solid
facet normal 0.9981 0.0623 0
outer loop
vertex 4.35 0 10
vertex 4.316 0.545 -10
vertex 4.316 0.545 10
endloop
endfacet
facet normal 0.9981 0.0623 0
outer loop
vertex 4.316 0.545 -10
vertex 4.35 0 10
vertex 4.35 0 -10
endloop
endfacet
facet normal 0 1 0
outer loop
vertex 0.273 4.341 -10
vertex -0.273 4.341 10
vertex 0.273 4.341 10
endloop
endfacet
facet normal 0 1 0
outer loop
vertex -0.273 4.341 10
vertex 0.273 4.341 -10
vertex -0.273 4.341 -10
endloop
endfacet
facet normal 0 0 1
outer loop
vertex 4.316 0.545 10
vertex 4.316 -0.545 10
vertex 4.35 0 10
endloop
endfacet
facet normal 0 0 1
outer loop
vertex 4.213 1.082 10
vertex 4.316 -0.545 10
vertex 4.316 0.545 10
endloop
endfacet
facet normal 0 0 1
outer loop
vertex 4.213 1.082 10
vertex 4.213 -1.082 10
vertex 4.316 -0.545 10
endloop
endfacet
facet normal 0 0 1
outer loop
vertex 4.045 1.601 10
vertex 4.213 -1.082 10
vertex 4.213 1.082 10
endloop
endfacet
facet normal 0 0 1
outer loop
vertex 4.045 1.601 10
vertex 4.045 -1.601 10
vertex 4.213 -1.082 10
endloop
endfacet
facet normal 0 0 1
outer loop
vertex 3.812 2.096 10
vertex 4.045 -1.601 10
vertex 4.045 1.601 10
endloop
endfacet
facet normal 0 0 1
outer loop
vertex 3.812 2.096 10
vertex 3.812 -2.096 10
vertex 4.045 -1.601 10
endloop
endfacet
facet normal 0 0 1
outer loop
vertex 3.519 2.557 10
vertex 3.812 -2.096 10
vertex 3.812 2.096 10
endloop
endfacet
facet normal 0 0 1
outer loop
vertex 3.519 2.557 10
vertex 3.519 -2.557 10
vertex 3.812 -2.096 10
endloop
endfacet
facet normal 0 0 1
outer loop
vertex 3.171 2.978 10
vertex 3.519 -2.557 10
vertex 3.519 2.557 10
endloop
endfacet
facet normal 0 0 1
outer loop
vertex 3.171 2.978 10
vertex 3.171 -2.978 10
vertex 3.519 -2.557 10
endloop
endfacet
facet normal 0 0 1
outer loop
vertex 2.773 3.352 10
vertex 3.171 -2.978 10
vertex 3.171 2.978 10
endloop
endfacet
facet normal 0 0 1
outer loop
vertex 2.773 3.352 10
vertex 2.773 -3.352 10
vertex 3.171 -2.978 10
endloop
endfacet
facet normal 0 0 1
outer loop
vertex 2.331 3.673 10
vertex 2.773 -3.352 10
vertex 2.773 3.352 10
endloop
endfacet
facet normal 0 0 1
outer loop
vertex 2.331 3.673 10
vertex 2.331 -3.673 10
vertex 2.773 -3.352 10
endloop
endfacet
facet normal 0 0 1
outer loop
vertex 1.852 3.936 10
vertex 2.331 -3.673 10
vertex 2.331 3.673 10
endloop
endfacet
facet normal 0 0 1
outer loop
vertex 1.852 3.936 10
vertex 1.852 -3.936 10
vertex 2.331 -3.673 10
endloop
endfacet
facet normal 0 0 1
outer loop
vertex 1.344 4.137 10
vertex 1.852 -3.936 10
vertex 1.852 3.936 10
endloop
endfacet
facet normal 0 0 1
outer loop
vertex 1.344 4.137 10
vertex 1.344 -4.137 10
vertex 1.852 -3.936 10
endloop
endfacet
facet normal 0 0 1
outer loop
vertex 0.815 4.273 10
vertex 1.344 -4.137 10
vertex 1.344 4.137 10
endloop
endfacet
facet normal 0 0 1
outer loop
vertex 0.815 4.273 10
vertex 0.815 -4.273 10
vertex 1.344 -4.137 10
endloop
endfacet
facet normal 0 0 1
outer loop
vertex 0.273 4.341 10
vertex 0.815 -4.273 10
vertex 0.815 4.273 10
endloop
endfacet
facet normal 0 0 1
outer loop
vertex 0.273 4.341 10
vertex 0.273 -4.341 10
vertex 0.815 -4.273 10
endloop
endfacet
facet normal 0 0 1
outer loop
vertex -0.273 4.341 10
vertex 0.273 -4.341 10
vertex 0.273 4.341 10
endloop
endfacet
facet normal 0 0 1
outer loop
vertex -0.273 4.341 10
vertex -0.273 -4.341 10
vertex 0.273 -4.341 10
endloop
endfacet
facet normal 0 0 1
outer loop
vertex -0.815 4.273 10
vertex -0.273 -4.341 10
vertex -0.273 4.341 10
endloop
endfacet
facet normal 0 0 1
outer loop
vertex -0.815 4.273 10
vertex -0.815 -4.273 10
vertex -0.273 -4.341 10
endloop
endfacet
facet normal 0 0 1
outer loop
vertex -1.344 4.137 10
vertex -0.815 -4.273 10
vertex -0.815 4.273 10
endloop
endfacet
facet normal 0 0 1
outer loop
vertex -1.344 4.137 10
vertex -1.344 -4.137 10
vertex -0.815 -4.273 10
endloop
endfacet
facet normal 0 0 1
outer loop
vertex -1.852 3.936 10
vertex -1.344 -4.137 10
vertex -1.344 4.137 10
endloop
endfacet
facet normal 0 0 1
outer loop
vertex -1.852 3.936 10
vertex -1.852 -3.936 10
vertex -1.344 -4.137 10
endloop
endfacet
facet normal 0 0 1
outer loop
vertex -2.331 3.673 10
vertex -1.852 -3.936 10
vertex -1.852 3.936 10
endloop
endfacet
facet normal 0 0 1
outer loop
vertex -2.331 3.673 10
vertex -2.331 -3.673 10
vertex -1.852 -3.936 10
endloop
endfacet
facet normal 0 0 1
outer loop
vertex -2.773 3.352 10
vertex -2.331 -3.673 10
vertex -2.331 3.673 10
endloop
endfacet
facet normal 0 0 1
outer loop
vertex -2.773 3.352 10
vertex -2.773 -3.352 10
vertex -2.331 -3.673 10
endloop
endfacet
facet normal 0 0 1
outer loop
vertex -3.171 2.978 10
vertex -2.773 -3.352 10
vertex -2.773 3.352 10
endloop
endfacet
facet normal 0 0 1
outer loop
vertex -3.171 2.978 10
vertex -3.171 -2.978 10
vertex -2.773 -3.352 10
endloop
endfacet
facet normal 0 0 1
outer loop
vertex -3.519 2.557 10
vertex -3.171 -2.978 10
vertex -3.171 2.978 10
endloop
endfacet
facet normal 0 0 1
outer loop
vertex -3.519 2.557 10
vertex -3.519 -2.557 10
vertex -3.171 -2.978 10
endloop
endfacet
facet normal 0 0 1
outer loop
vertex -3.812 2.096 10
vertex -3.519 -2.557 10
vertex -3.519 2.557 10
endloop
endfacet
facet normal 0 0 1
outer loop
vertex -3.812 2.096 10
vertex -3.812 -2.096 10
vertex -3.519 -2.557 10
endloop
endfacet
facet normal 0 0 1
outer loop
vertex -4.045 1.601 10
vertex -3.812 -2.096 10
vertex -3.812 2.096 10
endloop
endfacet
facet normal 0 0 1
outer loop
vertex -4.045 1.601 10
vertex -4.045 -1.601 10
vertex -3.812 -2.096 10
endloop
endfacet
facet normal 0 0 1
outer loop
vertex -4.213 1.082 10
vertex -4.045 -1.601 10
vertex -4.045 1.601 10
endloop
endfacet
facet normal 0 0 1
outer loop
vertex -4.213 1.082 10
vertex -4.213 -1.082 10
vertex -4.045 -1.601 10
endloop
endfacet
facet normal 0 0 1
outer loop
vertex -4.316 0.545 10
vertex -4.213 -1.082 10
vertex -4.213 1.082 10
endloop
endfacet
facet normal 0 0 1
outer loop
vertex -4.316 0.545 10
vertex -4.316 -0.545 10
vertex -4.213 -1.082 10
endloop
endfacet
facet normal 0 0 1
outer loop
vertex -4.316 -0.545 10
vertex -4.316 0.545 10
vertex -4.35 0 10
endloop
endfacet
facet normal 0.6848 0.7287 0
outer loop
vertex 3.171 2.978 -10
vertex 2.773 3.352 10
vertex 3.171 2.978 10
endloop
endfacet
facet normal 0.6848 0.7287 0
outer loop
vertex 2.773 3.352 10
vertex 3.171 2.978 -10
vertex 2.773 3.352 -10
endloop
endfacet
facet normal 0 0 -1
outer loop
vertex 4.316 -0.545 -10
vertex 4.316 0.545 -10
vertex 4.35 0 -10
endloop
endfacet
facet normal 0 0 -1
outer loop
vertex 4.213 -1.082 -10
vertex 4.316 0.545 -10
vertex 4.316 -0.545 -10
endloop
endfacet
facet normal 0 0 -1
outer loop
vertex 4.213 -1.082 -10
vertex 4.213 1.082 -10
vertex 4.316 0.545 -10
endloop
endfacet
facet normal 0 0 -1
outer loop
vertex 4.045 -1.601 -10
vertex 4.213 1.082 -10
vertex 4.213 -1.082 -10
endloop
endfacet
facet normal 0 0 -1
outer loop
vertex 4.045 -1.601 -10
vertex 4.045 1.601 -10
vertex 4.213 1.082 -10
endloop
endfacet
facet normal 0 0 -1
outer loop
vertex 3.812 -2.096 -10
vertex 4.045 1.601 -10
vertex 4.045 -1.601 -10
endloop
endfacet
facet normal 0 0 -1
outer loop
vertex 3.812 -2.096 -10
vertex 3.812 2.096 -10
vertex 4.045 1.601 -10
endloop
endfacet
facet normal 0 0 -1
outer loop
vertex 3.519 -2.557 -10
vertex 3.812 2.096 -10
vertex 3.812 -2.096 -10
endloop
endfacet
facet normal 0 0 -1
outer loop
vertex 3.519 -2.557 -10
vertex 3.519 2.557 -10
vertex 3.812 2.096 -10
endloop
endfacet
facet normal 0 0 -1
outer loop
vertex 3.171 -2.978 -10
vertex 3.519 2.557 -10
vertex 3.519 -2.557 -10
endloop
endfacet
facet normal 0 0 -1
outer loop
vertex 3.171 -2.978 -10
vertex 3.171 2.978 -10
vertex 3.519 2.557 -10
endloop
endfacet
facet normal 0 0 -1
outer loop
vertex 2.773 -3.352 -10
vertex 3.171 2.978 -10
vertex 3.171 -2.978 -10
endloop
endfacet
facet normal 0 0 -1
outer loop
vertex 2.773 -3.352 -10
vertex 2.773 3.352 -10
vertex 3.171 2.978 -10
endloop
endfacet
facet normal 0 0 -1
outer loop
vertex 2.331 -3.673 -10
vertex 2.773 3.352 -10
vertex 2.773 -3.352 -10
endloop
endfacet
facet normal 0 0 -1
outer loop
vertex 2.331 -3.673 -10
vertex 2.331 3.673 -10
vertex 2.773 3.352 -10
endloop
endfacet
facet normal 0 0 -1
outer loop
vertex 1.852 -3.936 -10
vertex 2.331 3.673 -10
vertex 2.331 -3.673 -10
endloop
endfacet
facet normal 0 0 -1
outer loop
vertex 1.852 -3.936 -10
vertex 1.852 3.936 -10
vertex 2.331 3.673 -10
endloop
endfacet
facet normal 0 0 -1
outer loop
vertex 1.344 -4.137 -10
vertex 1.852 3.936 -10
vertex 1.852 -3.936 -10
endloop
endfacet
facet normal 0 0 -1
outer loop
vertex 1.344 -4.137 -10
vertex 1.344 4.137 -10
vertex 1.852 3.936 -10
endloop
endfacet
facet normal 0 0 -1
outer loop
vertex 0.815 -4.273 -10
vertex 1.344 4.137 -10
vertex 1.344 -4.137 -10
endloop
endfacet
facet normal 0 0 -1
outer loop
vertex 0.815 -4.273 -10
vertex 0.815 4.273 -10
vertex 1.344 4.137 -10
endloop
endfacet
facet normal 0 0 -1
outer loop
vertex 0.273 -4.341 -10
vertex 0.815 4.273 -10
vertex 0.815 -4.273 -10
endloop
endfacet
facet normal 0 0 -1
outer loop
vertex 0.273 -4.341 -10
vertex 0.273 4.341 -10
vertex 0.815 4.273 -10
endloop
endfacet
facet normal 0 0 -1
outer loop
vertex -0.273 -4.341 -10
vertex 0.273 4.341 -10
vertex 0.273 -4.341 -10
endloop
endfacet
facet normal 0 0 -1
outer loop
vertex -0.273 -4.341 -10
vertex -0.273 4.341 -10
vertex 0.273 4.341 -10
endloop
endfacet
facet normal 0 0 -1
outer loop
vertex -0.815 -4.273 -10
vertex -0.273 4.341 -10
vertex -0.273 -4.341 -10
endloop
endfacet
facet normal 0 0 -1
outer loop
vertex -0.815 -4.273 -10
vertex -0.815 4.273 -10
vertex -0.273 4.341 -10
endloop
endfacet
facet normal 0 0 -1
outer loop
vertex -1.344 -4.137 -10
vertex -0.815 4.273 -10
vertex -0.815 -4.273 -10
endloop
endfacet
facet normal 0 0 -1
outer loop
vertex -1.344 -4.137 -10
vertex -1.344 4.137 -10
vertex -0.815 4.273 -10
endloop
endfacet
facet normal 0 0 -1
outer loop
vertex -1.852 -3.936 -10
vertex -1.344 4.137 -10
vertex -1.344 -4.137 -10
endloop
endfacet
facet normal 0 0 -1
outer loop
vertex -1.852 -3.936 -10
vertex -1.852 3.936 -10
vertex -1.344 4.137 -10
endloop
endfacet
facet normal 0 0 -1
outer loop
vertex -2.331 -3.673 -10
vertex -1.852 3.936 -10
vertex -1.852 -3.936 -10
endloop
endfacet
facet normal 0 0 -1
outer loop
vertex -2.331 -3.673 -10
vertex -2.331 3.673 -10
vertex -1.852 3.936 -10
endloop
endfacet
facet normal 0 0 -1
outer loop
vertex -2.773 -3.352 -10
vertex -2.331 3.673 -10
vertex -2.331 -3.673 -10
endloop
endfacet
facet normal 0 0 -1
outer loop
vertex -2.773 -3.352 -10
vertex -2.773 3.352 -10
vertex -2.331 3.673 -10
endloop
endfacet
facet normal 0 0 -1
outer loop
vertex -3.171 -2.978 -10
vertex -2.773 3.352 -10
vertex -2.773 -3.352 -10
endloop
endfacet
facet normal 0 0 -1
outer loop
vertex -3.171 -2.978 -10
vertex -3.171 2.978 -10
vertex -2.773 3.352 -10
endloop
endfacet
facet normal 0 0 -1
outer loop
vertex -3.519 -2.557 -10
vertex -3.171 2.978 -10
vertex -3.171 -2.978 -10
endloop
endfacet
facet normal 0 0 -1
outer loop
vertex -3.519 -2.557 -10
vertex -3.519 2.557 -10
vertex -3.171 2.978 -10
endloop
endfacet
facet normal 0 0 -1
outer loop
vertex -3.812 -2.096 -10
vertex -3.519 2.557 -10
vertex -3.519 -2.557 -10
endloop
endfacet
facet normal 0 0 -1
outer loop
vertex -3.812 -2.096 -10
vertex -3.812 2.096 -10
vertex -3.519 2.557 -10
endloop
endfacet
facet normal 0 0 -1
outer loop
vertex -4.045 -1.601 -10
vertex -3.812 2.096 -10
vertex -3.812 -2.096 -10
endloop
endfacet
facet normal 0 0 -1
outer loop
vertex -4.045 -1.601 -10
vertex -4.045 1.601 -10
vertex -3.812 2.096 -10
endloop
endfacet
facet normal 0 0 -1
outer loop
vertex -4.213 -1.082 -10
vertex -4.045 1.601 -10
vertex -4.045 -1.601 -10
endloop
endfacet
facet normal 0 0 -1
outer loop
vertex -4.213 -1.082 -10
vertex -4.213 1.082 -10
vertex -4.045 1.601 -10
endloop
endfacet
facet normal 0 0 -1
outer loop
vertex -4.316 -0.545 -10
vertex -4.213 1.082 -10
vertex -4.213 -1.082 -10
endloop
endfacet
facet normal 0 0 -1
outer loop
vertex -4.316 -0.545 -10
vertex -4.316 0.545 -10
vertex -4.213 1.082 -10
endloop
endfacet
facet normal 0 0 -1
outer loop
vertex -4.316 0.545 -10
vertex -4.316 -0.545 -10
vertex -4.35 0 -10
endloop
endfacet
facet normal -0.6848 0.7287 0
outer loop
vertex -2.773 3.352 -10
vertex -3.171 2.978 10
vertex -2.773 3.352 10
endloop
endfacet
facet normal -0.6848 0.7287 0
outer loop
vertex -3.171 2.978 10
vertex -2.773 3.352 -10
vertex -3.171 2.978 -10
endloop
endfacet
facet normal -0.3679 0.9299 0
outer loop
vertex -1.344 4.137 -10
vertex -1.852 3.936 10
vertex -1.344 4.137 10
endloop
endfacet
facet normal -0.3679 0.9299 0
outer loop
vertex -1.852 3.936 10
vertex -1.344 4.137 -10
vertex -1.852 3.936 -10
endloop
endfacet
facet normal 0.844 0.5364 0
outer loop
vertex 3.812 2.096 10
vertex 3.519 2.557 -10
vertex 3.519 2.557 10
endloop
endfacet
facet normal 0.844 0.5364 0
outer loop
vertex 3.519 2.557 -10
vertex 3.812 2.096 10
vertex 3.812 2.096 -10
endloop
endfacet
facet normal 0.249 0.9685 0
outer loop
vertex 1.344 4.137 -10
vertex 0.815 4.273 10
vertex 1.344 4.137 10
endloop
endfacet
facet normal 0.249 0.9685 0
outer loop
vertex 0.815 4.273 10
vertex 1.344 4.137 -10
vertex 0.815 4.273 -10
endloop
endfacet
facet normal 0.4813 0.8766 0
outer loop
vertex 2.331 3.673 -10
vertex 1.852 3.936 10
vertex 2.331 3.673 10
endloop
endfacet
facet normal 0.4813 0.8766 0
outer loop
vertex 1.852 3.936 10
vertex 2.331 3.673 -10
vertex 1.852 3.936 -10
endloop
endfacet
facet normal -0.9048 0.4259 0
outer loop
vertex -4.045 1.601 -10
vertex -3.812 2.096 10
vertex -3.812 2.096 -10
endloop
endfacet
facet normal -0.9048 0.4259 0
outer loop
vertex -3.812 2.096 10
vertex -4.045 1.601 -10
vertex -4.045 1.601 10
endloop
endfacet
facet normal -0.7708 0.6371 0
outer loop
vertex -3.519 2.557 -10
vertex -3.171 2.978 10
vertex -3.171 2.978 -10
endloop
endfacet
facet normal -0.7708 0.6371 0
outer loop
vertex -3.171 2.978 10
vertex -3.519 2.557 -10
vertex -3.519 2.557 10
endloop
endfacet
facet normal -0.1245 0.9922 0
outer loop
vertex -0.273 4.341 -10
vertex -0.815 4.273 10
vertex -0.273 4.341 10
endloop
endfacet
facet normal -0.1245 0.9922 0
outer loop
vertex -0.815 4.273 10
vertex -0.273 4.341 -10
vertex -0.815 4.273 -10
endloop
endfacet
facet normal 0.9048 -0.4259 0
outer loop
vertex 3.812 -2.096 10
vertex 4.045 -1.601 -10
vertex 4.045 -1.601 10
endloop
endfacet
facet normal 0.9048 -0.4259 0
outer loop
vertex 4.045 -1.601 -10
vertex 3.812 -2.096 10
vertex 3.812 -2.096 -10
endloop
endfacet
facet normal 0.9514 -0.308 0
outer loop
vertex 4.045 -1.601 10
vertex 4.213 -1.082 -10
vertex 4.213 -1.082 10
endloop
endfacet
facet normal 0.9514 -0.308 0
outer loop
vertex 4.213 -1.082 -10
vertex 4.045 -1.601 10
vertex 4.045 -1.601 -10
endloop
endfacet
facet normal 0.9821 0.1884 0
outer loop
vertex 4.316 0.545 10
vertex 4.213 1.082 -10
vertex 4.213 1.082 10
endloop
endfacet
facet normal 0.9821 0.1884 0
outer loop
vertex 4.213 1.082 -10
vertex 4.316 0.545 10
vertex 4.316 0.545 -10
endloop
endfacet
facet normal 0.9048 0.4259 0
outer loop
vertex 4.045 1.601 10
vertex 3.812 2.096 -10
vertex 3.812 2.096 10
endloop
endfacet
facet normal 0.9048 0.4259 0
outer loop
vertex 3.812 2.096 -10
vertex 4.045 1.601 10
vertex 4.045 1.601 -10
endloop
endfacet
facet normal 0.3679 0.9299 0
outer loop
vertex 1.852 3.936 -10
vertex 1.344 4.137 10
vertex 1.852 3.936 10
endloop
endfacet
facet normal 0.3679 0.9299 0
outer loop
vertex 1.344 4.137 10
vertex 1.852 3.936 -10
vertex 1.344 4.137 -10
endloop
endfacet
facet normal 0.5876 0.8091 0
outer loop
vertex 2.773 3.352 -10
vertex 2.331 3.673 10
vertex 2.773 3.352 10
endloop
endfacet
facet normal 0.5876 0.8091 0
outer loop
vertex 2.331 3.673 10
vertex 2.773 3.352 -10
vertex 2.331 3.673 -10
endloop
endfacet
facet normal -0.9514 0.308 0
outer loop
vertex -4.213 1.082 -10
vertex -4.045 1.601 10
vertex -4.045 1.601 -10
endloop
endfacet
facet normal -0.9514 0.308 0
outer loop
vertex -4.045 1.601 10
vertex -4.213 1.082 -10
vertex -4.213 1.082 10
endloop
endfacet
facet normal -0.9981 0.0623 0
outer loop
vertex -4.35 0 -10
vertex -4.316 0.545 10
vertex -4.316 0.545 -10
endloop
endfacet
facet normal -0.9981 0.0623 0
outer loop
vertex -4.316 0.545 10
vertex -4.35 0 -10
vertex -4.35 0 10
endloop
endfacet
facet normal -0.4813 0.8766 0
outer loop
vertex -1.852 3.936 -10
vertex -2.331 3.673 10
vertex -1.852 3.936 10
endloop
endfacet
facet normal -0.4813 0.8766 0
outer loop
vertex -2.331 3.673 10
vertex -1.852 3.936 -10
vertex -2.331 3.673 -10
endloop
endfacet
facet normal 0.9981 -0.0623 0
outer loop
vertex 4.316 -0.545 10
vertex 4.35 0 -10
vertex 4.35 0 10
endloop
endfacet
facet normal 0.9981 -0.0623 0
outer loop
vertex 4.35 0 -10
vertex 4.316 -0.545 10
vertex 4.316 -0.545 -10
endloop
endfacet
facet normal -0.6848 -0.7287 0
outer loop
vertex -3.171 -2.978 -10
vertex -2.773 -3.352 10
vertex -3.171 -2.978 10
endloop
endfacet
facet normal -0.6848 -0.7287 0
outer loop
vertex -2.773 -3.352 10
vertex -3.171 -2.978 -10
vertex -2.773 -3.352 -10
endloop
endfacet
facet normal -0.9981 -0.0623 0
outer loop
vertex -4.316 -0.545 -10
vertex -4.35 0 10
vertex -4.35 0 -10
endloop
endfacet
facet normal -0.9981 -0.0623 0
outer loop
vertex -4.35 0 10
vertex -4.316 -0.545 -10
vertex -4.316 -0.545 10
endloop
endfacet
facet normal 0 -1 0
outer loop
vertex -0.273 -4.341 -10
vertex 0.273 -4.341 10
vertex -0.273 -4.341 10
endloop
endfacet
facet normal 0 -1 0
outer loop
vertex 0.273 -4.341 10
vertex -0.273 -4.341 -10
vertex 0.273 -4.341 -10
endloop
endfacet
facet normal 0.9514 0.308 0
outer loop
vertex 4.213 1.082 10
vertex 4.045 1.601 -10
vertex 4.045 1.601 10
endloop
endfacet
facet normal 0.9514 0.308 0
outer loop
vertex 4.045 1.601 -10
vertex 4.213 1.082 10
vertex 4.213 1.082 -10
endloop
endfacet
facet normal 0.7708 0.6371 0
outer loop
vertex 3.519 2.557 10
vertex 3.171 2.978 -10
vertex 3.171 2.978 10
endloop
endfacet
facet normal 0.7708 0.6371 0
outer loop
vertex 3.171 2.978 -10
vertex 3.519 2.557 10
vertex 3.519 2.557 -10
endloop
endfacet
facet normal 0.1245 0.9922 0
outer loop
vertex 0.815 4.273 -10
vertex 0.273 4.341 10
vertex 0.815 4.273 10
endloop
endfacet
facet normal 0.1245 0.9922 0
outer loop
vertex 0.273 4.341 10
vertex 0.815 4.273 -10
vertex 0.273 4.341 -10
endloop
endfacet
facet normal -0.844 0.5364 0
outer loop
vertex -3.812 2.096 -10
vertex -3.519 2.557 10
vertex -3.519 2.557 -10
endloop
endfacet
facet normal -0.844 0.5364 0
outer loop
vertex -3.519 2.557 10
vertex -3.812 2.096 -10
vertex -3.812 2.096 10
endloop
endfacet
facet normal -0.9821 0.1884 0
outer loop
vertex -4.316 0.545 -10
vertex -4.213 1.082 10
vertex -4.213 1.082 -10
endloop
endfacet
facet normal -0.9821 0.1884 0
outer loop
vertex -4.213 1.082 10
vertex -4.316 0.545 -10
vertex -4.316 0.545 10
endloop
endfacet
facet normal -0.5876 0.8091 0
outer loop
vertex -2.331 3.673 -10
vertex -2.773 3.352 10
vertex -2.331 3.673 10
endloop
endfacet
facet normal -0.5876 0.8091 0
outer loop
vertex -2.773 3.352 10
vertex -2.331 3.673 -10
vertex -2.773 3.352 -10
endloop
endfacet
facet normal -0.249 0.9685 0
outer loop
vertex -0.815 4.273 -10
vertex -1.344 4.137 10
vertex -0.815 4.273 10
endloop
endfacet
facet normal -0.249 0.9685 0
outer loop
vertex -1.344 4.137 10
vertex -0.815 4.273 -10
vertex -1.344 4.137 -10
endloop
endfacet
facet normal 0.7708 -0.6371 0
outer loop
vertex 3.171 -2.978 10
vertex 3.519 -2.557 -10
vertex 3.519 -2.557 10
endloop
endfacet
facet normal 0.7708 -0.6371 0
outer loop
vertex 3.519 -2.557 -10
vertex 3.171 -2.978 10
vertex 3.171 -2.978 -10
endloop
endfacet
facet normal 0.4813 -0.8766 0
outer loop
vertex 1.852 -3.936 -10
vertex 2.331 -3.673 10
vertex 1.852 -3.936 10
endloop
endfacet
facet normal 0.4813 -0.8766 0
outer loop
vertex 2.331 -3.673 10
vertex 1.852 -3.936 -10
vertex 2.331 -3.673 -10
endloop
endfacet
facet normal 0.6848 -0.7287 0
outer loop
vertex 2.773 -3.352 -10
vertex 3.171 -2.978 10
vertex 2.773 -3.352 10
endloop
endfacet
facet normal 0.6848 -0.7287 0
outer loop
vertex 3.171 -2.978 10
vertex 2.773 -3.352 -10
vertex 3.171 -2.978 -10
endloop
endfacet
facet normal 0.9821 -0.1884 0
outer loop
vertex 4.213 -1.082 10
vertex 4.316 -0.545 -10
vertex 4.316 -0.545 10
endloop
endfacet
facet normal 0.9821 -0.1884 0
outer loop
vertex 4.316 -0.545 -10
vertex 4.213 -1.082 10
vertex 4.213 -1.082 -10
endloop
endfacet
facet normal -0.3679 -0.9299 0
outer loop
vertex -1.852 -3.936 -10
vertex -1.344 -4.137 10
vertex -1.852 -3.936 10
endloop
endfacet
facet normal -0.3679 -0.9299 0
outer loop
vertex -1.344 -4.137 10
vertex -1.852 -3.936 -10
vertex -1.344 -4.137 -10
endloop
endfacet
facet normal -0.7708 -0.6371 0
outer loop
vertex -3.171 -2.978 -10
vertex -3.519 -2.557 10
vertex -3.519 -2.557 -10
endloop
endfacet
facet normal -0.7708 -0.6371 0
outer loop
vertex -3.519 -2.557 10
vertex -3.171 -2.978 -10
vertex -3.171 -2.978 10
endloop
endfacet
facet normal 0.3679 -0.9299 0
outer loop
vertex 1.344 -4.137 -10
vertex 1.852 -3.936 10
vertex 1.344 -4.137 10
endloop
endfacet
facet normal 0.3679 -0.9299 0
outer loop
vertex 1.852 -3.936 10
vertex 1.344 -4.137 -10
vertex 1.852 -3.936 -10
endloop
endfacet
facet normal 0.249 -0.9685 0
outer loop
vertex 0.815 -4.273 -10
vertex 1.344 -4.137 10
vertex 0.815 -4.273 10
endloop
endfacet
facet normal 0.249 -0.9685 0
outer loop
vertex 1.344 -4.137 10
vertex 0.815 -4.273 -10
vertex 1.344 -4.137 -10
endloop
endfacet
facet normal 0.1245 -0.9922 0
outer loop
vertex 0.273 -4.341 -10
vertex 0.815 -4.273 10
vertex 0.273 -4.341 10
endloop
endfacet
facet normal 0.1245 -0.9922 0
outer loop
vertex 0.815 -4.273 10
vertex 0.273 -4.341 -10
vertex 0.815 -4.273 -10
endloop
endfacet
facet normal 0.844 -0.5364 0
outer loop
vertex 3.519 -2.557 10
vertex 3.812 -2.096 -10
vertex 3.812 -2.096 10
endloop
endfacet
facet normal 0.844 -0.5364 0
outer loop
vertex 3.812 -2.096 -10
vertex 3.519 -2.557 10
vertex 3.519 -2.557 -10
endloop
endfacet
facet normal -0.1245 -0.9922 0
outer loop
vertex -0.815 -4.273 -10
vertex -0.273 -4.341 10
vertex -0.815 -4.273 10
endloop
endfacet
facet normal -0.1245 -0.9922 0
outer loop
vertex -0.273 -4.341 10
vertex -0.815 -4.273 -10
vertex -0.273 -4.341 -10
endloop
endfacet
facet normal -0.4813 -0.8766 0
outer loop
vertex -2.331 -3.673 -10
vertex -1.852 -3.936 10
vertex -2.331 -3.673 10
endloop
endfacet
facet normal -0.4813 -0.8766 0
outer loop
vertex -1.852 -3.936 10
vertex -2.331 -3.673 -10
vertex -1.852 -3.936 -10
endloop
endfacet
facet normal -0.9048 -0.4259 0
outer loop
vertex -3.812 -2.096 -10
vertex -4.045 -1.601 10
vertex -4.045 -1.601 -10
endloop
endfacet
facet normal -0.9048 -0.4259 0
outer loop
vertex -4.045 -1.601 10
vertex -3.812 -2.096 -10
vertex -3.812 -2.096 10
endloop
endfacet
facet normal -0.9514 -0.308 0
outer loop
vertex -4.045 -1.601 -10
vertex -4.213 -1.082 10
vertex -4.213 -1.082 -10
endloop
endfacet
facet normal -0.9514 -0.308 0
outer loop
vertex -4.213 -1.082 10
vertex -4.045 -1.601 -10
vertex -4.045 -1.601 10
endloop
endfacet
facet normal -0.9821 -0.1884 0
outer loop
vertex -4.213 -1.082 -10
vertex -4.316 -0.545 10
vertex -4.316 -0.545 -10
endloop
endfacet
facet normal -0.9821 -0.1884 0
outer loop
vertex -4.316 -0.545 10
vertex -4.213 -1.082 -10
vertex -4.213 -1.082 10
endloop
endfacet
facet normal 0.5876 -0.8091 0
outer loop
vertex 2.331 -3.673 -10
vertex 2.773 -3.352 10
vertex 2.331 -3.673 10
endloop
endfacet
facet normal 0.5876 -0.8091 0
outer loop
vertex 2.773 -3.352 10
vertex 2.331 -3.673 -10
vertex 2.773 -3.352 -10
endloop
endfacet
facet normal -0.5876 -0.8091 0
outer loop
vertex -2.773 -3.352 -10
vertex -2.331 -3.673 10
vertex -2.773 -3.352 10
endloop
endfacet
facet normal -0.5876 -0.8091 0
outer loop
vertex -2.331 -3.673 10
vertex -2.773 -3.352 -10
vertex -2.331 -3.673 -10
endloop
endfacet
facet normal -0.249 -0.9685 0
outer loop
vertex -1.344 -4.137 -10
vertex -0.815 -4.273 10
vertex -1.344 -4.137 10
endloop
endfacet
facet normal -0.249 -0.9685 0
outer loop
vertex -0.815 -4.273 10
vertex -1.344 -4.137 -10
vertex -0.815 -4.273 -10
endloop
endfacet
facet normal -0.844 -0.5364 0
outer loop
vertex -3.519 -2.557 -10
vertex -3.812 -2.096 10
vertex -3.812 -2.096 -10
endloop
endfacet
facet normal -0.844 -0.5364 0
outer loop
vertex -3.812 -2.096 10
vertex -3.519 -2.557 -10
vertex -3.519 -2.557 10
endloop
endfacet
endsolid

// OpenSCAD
$fn = 50;


difference() {
	union() {
		translate(v = [0, 0, -10.0000000000]) {
			cylinder(h = 20, r = 4.3500000000);
		}
	}
	union() {
		translate(v = [0, 0, -100.0000000000]) {
			cylinder(h = 200, r = 0);
		}
	}
}
